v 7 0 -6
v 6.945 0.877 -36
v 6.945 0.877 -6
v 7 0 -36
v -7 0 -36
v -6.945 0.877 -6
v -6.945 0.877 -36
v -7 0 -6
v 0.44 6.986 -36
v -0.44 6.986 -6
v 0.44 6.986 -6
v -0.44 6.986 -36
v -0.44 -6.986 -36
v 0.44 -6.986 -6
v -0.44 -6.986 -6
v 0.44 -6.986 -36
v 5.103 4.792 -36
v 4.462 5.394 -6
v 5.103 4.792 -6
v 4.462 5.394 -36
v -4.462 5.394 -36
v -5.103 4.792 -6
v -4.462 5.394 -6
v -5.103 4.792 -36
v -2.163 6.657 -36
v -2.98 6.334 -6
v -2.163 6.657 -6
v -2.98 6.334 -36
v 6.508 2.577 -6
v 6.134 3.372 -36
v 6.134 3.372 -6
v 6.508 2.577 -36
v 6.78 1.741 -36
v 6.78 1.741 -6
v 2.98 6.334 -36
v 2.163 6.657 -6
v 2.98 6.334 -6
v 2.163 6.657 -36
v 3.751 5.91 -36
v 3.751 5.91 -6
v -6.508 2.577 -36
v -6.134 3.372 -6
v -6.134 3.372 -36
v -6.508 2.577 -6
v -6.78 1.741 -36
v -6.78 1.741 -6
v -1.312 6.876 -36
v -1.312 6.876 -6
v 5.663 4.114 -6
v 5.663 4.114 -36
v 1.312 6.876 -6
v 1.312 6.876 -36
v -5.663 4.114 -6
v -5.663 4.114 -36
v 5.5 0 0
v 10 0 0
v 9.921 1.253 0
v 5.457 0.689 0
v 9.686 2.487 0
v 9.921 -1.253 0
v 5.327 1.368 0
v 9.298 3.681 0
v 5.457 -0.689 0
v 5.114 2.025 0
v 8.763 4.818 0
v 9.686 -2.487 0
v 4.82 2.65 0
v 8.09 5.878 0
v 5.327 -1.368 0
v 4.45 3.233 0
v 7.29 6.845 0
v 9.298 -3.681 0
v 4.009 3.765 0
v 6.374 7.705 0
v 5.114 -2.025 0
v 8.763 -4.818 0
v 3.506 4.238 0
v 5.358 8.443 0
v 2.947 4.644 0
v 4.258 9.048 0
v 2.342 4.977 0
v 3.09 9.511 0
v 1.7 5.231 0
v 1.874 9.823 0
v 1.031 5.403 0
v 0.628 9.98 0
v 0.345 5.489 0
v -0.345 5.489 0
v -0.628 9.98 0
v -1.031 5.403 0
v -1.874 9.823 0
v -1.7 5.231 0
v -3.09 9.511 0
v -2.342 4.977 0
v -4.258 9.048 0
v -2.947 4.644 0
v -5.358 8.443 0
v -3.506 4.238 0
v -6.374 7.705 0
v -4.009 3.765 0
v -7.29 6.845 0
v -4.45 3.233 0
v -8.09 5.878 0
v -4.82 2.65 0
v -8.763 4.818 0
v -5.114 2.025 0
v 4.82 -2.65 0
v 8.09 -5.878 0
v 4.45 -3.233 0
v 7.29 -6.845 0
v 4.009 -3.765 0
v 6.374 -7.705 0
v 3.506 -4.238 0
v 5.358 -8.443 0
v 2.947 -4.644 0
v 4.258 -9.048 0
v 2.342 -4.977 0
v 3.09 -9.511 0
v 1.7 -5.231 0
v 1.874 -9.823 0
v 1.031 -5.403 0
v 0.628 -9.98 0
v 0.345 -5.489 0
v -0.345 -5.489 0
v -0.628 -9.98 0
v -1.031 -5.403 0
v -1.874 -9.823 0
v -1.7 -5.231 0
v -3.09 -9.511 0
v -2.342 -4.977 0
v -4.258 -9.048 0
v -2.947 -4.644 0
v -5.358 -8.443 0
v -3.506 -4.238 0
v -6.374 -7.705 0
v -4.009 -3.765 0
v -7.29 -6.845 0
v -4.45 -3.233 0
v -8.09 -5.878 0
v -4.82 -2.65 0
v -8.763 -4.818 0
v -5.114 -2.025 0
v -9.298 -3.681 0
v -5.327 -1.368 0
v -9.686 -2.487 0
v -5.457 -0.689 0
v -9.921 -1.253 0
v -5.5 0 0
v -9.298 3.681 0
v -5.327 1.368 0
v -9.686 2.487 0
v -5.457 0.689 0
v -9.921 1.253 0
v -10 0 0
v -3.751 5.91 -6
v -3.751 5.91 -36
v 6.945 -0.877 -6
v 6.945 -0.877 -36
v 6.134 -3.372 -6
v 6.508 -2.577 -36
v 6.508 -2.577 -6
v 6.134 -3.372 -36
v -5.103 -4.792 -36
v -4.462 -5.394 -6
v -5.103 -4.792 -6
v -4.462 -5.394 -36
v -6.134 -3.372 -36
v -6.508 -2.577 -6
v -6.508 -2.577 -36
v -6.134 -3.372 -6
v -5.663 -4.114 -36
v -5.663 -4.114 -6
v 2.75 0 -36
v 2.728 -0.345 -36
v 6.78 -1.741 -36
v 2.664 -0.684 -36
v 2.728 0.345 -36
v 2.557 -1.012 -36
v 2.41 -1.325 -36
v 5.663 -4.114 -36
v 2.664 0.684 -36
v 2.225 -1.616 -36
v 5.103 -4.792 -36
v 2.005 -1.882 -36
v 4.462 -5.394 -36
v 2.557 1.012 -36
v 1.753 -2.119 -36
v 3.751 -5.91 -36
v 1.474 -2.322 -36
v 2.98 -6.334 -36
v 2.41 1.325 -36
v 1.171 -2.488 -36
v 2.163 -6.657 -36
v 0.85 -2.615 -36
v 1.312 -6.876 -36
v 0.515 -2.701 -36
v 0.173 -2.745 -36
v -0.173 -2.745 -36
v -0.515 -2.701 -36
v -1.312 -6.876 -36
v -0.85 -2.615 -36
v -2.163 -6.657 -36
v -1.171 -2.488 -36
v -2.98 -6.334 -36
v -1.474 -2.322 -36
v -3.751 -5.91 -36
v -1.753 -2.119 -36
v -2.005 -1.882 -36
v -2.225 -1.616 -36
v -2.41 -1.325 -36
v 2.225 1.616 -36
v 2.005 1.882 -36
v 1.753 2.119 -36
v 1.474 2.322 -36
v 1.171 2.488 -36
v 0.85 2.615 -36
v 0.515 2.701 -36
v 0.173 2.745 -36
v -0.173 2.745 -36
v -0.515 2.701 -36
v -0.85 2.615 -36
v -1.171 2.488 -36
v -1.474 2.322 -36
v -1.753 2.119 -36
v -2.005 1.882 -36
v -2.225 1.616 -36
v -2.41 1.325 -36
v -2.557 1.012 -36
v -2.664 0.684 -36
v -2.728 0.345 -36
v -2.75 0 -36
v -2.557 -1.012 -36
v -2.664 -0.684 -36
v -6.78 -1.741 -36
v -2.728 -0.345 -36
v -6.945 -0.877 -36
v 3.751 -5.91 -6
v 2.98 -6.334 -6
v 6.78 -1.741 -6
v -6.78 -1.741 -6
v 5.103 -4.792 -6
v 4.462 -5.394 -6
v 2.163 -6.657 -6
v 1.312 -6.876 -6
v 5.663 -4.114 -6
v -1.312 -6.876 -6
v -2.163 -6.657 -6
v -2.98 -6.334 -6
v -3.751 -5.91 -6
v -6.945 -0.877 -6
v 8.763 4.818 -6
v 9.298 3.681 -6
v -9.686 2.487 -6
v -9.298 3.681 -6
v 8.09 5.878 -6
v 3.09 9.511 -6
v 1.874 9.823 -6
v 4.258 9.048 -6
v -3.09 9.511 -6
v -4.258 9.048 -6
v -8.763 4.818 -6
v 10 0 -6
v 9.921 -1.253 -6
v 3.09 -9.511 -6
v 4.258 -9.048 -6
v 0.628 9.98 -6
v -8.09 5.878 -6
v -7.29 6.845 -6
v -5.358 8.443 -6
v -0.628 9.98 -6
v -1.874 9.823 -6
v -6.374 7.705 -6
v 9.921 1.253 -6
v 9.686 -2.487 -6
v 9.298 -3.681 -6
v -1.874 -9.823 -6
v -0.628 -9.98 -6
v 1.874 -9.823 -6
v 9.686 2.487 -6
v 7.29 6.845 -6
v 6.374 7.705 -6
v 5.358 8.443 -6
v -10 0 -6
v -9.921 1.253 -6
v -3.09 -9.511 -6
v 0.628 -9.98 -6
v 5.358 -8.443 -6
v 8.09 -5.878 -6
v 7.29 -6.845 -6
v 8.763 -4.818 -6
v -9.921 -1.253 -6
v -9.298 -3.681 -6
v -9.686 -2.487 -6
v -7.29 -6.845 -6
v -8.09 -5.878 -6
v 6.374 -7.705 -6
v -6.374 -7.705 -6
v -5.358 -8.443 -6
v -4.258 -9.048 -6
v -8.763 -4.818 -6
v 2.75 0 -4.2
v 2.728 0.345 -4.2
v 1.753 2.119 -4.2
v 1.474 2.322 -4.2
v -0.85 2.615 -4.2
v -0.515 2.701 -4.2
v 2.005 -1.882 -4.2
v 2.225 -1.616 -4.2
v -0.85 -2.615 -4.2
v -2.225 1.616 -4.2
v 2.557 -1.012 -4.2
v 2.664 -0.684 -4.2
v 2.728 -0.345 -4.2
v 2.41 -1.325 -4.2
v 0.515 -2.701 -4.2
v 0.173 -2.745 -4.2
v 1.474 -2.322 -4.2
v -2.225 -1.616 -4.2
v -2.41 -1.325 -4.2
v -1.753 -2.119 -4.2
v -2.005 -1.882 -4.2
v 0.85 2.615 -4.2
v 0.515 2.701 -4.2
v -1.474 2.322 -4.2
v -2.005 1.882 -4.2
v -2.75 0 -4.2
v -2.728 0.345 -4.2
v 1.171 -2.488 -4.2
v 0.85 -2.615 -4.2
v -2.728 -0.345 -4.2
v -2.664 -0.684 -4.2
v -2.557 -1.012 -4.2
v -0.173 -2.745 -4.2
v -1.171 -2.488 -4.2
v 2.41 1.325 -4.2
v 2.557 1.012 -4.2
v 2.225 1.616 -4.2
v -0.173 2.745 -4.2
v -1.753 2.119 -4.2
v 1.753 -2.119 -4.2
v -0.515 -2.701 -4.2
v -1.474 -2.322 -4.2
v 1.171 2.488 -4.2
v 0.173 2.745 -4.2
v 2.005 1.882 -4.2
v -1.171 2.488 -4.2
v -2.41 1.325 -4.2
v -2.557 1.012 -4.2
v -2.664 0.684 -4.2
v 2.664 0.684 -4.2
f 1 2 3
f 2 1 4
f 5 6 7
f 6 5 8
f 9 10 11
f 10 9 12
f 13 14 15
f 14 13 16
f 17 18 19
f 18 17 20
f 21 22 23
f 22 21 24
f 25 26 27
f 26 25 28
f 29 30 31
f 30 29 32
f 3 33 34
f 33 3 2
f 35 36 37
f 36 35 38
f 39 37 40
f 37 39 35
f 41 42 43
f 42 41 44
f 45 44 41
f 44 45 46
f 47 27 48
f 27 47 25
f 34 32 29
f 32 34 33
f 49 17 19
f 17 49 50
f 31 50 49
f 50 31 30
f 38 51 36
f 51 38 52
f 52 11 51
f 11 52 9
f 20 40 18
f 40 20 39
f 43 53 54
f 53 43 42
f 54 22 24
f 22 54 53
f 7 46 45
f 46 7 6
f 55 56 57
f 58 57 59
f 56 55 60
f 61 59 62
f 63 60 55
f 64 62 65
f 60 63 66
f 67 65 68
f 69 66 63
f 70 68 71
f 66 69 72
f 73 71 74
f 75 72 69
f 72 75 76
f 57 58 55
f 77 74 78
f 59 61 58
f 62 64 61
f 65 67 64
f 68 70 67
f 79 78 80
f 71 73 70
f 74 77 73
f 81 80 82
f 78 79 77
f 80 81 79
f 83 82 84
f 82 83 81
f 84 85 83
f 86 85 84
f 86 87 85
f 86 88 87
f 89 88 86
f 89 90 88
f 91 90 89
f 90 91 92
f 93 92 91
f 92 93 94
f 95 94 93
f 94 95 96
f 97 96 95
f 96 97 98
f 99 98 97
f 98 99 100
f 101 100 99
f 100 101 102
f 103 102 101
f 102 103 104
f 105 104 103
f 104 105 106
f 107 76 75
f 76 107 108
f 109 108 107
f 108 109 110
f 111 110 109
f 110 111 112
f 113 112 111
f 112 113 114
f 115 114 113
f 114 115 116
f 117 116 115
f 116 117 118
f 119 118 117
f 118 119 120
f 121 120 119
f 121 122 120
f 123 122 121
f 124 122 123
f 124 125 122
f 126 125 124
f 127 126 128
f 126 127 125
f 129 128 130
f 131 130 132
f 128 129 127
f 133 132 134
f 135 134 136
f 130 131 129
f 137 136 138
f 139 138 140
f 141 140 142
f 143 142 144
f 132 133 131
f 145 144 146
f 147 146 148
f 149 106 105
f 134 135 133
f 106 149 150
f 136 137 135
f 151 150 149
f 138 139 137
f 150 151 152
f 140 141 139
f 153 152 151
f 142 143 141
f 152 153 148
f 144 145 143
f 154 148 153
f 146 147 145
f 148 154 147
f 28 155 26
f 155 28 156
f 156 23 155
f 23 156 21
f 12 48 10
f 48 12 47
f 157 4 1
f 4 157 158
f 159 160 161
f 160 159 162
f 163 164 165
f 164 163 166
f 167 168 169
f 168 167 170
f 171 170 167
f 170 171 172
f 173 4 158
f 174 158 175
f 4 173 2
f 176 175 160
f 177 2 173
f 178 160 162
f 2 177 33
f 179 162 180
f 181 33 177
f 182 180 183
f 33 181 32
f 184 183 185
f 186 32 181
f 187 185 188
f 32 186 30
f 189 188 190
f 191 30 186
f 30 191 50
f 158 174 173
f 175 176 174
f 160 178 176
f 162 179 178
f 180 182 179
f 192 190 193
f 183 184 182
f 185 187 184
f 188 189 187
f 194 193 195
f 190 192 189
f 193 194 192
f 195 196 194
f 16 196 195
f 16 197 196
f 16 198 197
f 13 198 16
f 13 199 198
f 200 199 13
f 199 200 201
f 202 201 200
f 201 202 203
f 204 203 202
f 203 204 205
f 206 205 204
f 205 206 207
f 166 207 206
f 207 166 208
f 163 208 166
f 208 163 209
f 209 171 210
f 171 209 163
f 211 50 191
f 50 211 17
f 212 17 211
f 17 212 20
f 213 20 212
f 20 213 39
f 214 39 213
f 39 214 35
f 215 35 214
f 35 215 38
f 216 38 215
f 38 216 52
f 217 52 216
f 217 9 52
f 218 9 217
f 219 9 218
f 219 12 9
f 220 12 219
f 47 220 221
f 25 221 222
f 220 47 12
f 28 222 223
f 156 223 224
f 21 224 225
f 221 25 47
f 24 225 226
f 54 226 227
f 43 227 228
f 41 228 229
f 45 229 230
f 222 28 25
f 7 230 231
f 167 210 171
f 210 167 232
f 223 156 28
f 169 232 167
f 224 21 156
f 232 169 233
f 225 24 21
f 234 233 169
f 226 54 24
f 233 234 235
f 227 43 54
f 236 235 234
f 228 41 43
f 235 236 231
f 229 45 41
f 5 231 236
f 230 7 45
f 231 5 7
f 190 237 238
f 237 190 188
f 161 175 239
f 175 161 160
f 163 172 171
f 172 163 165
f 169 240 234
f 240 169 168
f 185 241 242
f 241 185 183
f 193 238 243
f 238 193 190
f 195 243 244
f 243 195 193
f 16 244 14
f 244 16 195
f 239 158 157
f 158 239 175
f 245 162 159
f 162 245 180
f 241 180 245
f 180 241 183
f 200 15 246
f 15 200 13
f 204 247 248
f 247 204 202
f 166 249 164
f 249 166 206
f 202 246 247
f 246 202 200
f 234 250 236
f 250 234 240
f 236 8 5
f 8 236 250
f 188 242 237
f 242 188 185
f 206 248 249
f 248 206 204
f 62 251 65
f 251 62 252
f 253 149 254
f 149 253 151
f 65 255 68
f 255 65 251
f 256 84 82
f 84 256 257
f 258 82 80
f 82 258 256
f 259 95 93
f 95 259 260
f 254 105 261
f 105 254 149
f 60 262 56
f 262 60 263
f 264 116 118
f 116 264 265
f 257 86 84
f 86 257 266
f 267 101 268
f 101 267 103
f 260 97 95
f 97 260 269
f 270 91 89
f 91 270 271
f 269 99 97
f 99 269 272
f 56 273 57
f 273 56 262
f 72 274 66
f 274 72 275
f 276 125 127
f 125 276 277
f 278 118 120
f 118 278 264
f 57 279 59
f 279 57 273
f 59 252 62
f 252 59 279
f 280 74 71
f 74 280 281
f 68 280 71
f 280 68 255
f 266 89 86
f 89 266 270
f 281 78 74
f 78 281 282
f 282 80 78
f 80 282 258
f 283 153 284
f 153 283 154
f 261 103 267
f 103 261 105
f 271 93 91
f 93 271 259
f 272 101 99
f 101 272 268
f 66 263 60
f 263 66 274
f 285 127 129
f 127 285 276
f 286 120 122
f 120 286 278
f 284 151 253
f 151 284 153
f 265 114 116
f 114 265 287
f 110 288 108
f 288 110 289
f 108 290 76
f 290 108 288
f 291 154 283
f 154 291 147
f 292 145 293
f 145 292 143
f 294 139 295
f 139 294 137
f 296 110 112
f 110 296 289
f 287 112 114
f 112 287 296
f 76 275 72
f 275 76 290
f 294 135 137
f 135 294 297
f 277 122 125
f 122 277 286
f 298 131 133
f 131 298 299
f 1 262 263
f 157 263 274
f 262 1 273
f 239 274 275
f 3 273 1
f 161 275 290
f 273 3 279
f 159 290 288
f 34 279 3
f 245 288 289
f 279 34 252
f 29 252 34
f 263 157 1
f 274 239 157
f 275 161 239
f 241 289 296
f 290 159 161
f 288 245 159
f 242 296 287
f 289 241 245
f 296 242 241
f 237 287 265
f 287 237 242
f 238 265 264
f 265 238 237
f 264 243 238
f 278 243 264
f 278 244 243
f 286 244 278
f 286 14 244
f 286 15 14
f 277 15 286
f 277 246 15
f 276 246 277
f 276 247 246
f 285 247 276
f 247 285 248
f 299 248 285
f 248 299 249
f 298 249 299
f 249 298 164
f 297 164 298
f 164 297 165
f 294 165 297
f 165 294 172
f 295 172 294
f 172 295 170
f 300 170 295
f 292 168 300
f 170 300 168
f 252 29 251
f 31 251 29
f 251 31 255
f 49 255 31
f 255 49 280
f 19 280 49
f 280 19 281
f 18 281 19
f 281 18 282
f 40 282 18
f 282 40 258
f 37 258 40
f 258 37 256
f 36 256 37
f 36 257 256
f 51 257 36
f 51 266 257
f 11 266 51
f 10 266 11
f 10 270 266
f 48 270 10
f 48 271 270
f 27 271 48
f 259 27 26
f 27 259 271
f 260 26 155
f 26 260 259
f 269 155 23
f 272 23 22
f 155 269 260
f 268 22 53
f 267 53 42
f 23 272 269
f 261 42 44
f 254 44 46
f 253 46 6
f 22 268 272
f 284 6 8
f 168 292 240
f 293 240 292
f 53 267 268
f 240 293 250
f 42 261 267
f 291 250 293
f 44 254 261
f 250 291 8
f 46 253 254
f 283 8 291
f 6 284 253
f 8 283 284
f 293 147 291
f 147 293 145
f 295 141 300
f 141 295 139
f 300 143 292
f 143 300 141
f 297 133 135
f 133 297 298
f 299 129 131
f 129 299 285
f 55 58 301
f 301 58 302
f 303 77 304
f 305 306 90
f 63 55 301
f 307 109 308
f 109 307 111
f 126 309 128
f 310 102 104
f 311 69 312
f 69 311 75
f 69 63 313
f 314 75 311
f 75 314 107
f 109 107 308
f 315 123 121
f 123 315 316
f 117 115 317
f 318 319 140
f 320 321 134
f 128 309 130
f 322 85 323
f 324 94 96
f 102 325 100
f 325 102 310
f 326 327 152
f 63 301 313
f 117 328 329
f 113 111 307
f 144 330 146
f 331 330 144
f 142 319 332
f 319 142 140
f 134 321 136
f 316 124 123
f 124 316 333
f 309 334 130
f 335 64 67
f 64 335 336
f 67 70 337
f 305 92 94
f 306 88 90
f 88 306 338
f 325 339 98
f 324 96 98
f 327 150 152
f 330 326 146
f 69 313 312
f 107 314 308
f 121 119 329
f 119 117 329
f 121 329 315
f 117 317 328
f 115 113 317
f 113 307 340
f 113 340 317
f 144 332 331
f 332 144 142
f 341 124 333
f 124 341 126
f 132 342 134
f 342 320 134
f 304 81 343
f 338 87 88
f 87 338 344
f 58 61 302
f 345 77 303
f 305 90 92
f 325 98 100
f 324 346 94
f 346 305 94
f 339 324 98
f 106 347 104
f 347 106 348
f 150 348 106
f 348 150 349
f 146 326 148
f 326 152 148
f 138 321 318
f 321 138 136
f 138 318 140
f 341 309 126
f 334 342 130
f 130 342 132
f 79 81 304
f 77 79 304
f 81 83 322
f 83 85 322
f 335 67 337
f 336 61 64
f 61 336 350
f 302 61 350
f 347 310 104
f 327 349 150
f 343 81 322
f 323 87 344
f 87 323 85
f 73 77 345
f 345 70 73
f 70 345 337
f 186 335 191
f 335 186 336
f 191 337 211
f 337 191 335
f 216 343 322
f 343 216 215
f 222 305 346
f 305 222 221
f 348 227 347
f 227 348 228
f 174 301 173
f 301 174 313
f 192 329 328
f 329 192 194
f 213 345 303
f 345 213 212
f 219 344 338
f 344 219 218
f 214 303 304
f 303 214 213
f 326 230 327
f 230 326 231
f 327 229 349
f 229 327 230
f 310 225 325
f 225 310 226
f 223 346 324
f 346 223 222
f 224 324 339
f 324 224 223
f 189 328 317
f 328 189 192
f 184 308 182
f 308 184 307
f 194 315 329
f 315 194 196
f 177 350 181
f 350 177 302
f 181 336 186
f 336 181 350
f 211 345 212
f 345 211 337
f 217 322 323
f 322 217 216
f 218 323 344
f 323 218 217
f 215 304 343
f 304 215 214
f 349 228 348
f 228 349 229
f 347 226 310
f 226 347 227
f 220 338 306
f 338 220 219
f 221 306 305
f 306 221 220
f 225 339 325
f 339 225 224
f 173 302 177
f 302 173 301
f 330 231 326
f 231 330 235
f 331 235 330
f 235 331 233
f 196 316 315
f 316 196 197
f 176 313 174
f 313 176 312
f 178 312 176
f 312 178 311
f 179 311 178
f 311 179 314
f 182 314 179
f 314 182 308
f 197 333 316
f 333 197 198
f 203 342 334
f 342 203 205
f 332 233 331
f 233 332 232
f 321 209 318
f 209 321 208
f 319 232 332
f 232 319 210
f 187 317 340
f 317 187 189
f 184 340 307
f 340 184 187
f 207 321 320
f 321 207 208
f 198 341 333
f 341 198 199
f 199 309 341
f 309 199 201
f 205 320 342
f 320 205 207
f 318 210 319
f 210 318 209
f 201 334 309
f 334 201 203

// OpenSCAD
$fn = 50;


difference() {
	union() {
		translate(v = [0, 0, -36.0000000000]) {
			cylinder(h = 36, r = 7.0000000000);
		}
		translate(v = [0, 0, -6.0000000000]) {
			cylinder(h = 6, r = 10.0000000000);
		}
	}
	union() {
		translate(v = [0, 0, 0]) {
			rotate(a = [0, 0, 0]) {
				difference() {
					union() {
						#translate(v = [0, 0, -36.0000000000]) {
							cylinder(h = 36, r = 2.2500000000);
						}
						#translate(v = [0, 0, -4.2000000000]) {
							cylinder(h = 4.2000000000, r = 7.0000000000, r1 = 2.7500000000, r2 = 5.5000000000);
						}
						#translate(v = [0, 0, -36.0000000000]) {
							cylinder(h = 36, r = 2.7500000000);
						}
						#translate(v = [0, 0, -36.0000000000]) {
							cylinder(h = 36, r = 2.2500000000);
						}
					}
					union();
				}
			}
		}
	}
}
